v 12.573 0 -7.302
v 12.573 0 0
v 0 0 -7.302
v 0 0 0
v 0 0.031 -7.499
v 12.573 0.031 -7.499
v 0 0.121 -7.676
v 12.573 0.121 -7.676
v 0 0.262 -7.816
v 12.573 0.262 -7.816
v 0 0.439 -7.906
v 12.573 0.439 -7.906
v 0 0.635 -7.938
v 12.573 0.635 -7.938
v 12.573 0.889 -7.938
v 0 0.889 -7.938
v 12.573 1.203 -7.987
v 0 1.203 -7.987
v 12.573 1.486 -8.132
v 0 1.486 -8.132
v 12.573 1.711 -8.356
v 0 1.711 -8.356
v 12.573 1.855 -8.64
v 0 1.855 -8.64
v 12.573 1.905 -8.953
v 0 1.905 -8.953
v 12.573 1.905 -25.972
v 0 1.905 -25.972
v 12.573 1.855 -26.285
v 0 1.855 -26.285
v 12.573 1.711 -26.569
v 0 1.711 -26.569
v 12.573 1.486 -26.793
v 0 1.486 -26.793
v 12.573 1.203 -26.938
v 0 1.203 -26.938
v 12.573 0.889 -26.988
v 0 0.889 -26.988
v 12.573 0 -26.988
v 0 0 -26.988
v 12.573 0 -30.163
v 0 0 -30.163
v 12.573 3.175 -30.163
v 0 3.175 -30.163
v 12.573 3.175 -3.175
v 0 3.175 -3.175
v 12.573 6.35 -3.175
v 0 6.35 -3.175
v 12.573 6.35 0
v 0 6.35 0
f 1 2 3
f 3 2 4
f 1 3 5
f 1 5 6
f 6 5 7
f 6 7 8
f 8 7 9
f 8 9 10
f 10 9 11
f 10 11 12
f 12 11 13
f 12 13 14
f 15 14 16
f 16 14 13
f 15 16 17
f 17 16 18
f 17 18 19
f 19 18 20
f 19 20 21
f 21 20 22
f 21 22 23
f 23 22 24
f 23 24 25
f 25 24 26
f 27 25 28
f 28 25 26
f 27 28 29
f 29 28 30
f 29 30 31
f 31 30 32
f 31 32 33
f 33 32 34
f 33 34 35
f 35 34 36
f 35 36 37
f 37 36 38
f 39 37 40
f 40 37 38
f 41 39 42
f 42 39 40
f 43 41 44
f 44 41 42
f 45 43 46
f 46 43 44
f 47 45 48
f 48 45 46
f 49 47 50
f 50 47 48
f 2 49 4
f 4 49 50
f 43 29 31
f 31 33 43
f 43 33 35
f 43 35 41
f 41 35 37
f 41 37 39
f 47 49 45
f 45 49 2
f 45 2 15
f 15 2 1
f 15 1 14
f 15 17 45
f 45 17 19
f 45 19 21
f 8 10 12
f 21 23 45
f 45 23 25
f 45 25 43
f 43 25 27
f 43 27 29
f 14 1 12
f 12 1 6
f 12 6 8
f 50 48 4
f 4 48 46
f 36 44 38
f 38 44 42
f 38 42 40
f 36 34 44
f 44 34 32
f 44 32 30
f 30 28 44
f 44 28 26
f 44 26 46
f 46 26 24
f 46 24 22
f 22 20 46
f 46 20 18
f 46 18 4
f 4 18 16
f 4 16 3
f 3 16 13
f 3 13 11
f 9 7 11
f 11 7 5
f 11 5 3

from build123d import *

# Parameters (mm, degrees)
BOSS_EXTRUDE1_DEPTH = 12.573


with BuildPart() as part:
    # Sketch1 → Boss-Extrude1 (new body)
    with BuildSketch(Plane(origin=(0, 0, 0), x_dir=(0, 0, -1), z_dir=(1, 0, 0))):
        with BuildLine():
            Line((0, 0), (0, 6.35))
            Line((0, 6.35), (3.175, 6.35))
            Line((3.175, 6.35), (3.175, 3.175))
            Line((3.175, 3.175), (30.1625, 3.175))
            Line((30.1625, 3.175), (30.1625, 0))
            Line((30.1625, 0), (26.9875, 0))
            Line((26.9875, 0), (26.9875, 0.889))
            ThreePointArc((26.9875, 0.889), (26.68992049, 1.60742049), (25.9715, 1.905))
            Line((25.9715, 1.905), (8.9535, 1.905))
            ThreePointArc((8.9535, 1.905), (8.23507951, 1.60742049), (7.9375, 0.889))
            Line((7.9375, 0.889), (7.9375, 0.635))
            ThreePointArc((7.9375, 0.635), (7.751512806, 0.185987194), (7.3025, 0))
            Line((7.3025, 0), (0, 0))
        make_face()
    extrude(amount=BOSS_EXTRUDE1_DEPTH)


solid = part.part
